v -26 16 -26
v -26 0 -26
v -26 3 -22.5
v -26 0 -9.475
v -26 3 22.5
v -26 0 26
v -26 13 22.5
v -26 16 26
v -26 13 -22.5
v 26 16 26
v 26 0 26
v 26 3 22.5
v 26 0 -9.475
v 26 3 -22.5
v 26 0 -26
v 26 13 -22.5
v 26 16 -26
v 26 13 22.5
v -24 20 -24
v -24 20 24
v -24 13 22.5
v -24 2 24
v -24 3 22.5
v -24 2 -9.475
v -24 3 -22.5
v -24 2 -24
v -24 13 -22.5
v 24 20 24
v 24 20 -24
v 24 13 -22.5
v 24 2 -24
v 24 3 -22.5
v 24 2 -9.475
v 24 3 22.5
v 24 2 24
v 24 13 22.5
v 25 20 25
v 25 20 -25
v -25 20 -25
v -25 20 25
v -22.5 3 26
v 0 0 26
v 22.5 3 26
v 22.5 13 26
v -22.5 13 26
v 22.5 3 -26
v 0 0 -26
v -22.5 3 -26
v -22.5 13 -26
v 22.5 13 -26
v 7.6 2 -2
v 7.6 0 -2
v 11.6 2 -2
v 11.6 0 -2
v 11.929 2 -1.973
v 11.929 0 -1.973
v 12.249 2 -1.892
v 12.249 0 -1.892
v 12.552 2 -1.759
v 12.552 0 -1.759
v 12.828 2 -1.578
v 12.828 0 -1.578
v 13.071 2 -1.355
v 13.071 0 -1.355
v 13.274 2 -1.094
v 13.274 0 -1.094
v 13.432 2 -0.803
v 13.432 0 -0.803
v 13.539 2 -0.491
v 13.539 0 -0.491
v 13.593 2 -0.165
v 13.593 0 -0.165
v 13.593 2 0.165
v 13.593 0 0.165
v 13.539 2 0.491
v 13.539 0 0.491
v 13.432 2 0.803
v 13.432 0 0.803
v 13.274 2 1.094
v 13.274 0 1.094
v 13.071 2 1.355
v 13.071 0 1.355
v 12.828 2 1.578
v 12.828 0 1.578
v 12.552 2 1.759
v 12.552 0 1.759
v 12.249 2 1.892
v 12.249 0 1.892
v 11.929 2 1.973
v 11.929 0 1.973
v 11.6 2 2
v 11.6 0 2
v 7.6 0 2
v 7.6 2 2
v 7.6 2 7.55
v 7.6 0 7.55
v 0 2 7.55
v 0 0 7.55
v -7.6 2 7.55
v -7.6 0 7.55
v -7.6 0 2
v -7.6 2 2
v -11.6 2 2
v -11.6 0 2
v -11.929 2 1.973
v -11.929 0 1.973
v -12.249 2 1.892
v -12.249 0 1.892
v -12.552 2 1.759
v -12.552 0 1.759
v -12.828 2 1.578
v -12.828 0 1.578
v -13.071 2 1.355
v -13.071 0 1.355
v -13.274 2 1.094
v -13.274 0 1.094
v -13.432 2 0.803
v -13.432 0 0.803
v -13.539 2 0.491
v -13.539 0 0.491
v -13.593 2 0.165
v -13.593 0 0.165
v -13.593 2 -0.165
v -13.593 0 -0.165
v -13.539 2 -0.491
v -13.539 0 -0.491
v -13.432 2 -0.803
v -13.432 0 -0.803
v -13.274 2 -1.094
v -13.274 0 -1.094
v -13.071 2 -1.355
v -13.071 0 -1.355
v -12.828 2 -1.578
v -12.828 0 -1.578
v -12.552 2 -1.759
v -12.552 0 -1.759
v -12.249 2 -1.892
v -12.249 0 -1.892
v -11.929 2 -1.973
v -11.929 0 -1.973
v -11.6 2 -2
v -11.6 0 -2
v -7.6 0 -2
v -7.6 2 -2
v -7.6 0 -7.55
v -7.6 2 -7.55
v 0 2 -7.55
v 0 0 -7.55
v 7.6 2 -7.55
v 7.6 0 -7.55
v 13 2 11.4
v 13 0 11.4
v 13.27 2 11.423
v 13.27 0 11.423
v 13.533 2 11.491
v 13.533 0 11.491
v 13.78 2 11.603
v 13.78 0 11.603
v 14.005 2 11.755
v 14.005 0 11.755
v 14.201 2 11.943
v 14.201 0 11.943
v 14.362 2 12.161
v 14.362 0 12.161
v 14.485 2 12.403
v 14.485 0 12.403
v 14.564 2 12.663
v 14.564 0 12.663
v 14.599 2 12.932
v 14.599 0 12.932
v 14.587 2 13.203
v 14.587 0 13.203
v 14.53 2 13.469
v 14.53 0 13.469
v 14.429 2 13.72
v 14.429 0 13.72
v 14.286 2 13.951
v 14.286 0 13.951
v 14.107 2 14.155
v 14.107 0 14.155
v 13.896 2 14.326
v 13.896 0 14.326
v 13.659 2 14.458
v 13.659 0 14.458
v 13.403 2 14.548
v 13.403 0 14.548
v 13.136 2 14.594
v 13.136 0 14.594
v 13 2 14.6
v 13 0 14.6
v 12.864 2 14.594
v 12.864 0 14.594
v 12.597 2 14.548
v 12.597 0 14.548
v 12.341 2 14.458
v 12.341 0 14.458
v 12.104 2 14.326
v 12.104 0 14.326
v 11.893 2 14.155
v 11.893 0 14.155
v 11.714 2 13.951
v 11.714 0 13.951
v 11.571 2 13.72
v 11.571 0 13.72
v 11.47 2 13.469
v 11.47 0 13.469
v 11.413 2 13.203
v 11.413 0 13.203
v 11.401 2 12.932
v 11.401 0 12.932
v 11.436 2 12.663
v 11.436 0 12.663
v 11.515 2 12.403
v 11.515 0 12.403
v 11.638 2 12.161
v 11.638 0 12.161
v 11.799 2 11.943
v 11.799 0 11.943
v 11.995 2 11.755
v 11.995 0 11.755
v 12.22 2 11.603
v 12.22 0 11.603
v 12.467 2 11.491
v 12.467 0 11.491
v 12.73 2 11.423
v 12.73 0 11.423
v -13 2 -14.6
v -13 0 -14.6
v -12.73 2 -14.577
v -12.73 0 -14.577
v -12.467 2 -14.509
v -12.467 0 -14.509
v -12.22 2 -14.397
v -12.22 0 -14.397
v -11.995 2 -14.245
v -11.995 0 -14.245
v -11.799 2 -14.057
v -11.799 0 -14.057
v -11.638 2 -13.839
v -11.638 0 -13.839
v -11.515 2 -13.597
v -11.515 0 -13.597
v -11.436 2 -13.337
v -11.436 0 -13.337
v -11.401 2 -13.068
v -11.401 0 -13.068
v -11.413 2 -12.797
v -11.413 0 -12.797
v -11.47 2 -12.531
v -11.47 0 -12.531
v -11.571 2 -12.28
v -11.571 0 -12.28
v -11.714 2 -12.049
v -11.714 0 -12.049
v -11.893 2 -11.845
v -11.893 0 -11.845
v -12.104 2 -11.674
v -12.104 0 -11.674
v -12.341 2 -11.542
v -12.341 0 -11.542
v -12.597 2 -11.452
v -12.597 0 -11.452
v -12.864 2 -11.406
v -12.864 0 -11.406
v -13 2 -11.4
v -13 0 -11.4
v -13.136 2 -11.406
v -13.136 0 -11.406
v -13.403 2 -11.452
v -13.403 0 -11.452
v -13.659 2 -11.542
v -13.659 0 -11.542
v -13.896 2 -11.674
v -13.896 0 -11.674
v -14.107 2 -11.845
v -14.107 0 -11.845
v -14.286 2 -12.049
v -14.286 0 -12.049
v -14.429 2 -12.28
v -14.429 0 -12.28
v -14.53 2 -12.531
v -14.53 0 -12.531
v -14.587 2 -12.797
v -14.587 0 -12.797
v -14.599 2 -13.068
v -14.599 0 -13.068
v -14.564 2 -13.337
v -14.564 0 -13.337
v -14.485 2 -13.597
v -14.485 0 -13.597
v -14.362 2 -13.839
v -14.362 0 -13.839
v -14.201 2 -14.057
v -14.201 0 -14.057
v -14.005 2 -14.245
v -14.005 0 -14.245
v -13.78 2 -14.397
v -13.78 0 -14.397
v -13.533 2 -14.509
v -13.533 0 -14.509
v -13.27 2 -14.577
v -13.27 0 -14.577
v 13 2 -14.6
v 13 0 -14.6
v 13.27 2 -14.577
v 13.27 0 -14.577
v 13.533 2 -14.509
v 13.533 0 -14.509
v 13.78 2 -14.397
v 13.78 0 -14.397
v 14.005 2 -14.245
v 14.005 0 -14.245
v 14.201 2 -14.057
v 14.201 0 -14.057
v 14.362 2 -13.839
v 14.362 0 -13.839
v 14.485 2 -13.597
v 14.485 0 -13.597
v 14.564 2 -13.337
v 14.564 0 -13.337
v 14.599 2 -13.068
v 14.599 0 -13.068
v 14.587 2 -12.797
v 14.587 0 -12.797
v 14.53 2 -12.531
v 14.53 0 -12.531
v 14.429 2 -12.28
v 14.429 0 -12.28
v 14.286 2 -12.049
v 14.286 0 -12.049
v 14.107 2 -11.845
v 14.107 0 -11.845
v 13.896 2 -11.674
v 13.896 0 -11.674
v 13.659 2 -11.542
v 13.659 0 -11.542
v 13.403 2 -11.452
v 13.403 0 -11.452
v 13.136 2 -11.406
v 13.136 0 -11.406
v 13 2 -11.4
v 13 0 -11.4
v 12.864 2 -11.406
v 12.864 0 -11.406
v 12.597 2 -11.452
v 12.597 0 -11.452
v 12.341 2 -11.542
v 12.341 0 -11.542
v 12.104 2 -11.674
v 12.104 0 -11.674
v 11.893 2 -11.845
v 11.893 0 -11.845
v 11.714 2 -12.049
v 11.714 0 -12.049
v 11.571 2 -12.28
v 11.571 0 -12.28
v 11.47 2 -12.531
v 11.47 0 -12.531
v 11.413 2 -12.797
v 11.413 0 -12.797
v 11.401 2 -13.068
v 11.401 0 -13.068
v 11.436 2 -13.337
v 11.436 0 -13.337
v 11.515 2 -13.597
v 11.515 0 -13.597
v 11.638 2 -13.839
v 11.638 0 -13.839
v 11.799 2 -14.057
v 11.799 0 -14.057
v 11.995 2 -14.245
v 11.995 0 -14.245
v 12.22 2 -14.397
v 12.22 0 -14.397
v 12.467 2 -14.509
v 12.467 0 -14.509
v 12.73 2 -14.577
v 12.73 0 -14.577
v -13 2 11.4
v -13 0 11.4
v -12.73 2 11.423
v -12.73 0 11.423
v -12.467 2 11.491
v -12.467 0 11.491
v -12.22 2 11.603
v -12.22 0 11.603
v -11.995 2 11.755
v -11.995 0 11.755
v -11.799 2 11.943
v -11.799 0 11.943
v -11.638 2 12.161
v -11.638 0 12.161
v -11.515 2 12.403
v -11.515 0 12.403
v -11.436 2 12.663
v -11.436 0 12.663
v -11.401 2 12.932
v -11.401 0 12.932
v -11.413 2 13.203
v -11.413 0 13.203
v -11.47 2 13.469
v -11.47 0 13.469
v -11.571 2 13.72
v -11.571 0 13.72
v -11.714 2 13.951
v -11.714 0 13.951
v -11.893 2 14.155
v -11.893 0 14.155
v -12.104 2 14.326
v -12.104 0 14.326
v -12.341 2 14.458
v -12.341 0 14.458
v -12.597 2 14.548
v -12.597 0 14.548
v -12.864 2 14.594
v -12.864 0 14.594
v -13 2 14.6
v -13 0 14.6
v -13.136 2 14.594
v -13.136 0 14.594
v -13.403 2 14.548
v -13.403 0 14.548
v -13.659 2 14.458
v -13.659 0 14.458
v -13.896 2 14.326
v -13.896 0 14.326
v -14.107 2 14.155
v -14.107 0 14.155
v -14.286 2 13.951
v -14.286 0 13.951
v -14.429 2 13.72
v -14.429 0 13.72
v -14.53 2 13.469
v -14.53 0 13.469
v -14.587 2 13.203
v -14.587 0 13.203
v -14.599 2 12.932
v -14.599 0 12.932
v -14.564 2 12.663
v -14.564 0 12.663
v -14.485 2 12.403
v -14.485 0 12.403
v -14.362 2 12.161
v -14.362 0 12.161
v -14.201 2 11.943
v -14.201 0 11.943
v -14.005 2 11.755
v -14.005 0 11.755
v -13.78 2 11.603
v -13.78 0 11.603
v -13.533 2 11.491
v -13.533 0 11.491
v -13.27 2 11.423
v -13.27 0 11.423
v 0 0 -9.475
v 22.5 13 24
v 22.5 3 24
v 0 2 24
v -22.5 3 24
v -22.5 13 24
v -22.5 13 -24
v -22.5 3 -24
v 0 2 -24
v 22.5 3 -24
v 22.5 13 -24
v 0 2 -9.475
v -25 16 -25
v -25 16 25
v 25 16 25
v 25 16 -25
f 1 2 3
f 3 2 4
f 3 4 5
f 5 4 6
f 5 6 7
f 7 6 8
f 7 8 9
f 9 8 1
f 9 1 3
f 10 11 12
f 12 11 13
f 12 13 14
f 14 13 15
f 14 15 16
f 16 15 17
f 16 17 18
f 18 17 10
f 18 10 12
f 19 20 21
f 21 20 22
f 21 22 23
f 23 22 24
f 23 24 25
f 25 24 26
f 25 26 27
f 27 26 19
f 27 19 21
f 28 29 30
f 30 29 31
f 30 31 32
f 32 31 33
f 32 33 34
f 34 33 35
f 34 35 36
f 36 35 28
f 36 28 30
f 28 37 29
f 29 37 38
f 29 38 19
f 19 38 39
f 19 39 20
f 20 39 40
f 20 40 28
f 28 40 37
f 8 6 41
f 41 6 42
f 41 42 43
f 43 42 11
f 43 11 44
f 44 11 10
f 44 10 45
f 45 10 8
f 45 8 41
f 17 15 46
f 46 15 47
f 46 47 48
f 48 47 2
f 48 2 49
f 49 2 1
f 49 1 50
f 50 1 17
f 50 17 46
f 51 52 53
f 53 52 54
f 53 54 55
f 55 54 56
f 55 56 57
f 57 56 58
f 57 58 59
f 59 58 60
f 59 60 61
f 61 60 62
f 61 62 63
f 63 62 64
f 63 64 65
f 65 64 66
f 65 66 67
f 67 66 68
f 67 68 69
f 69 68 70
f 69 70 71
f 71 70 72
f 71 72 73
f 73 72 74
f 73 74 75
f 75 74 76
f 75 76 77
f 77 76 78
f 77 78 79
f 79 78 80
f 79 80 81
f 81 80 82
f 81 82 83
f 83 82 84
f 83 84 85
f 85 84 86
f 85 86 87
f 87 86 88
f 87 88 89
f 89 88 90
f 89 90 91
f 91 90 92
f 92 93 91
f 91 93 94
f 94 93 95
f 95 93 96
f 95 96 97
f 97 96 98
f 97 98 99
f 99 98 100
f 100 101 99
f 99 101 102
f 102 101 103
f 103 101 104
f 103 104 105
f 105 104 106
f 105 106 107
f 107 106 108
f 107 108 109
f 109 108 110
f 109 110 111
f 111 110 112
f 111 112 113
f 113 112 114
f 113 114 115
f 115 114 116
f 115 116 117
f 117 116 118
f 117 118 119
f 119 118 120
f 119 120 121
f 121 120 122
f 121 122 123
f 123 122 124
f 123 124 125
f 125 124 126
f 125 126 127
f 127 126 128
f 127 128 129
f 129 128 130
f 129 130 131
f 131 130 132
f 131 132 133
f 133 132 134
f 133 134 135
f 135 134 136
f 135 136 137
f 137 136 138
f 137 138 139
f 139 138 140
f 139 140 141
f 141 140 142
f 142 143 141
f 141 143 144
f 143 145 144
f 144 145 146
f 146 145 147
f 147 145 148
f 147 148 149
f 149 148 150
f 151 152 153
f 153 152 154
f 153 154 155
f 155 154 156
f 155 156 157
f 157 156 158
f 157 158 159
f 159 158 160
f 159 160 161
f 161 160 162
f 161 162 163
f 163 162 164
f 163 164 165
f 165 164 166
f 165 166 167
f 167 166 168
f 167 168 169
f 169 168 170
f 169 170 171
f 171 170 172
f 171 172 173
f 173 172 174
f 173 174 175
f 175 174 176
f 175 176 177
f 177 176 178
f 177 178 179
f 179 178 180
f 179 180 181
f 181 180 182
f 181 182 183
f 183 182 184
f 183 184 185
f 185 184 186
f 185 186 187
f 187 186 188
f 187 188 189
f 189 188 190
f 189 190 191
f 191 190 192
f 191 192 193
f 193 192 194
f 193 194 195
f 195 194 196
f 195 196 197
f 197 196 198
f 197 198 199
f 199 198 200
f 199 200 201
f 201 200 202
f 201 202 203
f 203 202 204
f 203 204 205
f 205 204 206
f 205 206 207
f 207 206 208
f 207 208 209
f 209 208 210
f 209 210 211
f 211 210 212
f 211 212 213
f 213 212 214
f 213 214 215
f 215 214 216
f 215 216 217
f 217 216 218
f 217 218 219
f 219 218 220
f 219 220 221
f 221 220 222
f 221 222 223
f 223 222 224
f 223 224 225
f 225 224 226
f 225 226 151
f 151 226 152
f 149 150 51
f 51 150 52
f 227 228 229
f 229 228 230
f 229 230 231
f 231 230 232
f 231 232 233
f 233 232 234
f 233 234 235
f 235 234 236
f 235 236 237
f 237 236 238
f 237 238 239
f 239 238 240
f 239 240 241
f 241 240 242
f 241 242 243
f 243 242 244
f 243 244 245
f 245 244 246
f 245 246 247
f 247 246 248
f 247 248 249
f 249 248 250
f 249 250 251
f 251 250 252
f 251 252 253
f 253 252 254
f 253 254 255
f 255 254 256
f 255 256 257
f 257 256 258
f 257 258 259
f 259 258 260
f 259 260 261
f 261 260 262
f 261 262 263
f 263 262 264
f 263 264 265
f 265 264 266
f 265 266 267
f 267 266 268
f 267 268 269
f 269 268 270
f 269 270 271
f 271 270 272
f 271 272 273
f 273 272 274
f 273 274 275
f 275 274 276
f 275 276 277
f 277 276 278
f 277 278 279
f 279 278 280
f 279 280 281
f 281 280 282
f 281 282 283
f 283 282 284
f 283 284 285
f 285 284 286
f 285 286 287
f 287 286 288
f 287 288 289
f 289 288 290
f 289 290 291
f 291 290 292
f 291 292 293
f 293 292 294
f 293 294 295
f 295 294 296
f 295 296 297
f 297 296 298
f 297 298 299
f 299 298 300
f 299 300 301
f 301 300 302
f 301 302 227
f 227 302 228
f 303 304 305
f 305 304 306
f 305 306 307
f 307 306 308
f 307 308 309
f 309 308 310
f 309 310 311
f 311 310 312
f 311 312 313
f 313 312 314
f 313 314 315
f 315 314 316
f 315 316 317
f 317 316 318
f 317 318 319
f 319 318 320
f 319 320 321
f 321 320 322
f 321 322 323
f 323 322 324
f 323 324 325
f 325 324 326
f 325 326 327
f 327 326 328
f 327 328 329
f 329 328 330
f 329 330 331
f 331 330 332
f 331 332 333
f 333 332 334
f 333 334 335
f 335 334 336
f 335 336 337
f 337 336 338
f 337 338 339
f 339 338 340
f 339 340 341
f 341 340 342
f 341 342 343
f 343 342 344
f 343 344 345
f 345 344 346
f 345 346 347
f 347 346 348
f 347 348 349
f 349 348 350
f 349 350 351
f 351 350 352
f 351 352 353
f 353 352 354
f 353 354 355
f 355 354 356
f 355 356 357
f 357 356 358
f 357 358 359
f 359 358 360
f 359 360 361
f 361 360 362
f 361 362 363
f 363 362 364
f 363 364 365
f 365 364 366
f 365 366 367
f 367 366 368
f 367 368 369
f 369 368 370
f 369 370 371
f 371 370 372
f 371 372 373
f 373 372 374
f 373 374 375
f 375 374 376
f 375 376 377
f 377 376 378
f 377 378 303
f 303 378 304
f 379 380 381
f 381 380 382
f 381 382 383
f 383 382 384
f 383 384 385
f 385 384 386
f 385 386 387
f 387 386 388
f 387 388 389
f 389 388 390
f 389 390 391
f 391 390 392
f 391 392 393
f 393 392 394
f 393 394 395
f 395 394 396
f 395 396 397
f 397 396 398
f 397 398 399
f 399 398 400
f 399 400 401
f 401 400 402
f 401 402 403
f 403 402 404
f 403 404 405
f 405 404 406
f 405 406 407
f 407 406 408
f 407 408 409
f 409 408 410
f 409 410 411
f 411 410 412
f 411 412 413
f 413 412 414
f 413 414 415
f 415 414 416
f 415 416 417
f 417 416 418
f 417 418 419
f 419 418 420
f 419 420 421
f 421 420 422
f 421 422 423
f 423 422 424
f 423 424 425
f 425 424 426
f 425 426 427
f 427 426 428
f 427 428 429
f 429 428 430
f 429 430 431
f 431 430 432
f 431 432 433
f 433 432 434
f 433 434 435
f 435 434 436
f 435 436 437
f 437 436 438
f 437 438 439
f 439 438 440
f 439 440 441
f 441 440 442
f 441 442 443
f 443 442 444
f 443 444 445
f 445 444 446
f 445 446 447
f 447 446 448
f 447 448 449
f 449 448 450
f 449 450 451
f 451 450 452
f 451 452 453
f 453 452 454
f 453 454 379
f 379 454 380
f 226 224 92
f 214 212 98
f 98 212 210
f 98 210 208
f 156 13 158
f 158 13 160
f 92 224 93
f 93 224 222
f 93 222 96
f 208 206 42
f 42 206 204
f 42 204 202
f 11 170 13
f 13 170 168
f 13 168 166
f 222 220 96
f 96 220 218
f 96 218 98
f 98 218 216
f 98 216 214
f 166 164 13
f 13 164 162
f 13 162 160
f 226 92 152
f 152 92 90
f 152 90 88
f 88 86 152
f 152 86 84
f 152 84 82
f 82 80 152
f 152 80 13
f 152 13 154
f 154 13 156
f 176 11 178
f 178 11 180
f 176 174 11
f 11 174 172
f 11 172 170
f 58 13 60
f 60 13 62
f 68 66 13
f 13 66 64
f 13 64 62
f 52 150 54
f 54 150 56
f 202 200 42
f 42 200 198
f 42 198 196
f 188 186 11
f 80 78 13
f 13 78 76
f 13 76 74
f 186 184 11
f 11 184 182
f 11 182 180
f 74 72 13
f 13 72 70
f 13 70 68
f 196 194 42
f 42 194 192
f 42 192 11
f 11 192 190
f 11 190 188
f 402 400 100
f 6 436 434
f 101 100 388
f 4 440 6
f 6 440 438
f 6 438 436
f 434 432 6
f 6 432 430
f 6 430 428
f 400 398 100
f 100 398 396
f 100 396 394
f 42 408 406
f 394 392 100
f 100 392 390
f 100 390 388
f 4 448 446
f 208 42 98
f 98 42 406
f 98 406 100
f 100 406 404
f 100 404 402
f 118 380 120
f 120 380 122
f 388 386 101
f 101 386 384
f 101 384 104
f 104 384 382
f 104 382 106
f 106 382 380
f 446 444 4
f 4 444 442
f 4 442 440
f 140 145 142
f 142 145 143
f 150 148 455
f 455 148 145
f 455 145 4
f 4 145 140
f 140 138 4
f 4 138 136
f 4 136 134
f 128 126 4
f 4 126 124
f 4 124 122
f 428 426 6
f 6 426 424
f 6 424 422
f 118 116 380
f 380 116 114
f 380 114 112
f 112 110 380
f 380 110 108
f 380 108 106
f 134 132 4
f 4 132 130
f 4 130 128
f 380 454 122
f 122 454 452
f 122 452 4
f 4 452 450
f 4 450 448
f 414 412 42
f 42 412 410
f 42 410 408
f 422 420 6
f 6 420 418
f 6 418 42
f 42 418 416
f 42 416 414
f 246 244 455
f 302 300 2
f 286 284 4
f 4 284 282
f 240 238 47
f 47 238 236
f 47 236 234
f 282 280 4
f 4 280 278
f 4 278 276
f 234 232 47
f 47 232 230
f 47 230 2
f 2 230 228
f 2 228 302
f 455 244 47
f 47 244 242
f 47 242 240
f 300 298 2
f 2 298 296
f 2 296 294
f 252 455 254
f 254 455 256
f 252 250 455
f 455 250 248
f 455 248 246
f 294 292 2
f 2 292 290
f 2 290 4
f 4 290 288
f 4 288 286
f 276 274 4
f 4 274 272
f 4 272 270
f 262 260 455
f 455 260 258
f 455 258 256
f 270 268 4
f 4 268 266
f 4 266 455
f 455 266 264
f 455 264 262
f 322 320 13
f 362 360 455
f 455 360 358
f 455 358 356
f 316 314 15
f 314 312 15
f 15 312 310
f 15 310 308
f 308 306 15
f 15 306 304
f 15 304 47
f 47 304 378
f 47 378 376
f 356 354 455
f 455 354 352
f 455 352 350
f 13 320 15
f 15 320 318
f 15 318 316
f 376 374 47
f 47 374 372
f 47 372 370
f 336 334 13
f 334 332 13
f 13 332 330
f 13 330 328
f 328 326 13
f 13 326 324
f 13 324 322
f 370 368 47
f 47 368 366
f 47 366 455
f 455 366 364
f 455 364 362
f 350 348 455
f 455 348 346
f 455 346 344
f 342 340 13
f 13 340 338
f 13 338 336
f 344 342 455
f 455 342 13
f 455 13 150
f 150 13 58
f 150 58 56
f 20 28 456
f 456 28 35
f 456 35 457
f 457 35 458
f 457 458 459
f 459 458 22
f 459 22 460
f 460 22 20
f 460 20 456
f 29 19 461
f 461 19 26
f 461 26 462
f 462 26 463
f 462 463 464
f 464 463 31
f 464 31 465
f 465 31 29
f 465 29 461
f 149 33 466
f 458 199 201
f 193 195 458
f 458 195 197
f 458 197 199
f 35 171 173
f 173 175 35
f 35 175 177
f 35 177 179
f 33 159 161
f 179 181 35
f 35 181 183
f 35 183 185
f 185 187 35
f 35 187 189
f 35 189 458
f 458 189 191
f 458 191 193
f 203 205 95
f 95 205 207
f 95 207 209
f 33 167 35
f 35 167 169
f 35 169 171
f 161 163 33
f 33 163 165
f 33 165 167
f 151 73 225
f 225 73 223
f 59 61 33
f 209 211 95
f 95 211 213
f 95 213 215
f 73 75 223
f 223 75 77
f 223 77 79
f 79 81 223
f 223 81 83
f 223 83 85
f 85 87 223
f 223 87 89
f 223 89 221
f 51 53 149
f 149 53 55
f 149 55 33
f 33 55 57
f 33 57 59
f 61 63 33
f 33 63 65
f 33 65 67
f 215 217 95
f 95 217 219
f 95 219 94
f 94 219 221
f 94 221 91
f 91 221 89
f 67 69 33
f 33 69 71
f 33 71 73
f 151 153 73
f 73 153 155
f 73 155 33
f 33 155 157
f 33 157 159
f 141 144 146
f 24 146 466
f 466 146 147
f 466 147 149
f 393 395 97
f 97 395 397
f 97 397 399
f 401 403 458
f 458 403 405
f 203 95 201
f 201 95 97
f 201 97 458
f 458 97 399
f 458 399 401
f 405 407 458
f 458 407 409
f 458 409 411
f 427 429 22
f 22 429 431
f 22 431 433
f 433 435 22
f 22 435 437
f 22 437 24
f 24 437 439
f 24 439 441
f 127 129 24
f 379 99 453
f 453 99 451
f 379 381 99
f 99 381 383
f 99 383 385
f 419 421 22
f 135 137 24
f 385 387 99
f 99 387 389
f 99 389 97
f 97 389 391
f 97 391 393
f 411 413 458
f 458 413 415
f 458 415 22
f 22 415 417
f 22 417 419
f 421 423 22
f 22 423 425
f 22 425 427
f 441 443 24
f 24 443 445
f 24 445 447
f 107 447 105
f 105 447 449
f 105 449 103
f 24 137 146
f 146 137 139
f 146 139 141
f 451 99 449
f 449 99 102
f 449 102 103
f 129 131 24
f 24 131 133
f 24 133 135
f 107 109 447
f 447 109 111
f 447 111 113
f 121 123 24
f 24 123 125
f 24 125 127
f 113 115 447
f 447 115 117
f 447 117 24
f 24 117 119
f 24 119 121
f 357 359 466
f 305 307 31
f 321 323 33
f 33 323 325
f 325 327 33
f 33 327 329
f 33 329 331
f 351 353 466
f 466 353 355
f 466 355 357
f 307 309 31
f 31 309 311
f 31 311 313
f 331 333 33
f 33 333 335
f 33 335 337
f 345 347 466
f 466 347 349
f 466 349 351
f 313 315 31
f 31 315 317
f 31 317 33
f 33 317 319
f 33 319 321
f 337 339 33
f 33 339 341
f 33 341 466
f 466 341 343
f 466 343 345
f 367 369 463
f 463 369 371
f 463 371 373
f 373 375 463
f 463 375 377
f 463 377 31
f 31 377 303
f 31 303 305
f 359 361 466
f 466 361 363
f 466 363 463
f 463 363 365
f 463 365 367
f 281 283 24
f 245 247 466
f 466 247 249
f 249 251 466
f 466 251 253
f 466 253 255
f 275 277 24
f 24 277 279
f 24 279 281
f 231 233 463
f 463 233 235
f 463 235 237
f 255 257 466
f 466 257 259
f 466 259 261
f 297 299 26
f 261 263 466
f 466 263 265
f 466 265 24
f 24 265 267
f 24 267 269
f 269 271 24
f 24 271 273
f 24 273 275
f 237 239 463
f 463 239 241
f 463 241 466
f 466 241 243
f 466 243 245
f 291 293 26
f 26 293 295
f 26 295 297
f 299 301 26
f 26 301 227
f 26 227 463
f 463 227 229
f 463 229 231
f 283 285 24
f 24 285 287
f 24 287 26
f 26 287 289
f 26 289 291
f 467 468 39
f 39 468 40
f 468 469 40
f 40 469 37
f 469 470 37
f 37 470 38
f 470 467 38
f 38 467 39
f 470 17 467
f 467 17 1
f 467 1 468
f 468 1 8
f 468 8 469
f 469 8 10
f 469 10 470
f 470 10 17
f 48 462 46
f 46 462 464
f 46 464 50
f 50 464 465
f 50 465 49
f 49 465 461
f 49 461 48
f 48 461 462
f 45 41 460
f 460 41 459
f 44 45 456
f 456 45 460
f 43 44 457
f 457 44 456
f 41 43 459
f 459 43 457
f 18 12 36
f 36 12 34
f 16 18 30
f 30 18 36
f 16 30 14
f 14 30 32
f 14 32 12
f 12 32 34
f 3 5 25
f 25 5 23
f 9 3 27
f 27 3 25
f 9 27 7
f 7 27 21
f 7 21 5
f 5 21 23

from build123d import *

# Parameters (mm, degrees)
SKETCH_1_W          = 52
SKETCH_1_H          = 52.00000000000001
SKETCH_1_W_2        = 32
SKETCH_1_H_2        = 32
SKETCH_1_R          = 1.6000000000000019
EXTRUDE_2_DEPTH     = 20
SHELL_6_T           = -2
SKETCH_3_W          = 52
SKETCH_3_H          = 52.00000000000001
SKETCH_3_W_2        = 50
SKETCH_3_H_2        = 50.00000000000001
CUT_EXTRUDE_5_DEPTH = 4
CUT_EXTRUDE_6_DEPTH = 62.4817045957576
CUT_EXTRUDE_7_DEPTH = 62.48170459575759


with BuildPart() as part:
    # 草图1 → 凸台-拉伸2 (new body)
    # profile 1 of 2: a face of its own
    with BuildSketch(Plane(origin=(0, 0, 0), x_dir=(1, 0, 0), z_dir=(0, 1, 0))):
        Rectangle(SKETCH_1_W, SKETCH_1_H)
        Rectangle(SKETCH_1_W_2, SKETCH_1_H_2, mode=Mode.SUBTRACT)
    # profile 2 of 2: a face of its own
    with BuildSketch(Plane(origin=(0, 0, 0), x_dir=(1, 0, 0), z_dir=(0, 1, 0))):
        Rectangle(SKETCH_1_W_2, SKETCH_1_H_2)
        with Locations(Location((-13.000000000000002, -13.000000000000002, 0), (0, 0, 270))):
            Circle(SKETCH_1_R, mode=Mode.SUBTRACT)
        with Locations(Location((13.000000000000009, -13.000000000000002, 0), (0, 0, 270))):
            Circle(SKETCH_1_R, mode=Mode.SUBTRACT)
        with Locations(Location((-13.000000000000002, 13.000000000000002, 0), (0, 0, 270))):
            Circle(SKETCH_1_R, mode=Mode.SUBTRACT)
        with BuildLine():
            Line((-7.599999999999996, -7.550000000000001), (-7.599999999999996, -1.9999999999999991))
            Line((-7.599999999999996, -1.9999999999999991), (-11.599999999999998, -1.9999999999999996))
            ThreePointArc((-11.599999999999998, -1.9999999999999996), (-13.599999999999998, 2.4e-16), (-11.599999999999998, 1.9999999999999996))
            Line((-11.599999999999998, 1.9999999999999996), (-7.599999999999996, 1.9999999999999991))
            Line((-7.599999999999996, 2), (-7.599999999999996, 7.549999999999999))
            Line((-7.599999999999996, 7.549999999999999), (7.600000000000003, 7.549999999999999))
            Line((7.600000000000004, 7.549999999999999), (7.600000000000004, 2))
            Line((7.600000000000002, 1.9999999999999991), (11.600000000000005, 1.9999999999999996))
            ThreePointArc((11.600000000000005, 1.9999999999999996), (13.0142135623731, 1.4142135623730947), (13.600000000000005, 0))
            ThreePointArc((13.600000000000005, -4.9e-16), (13.014213562373099, -1.4142135623730951), (11.600000000000005, -1.9999999999999996))
            Line((11.600000000000005, -1.9999999999999996), (7.600000000000002, -1.9999999999999991))
            Line((7.600000000000004, -1.9999999999999991), (7.600000000000004, -7.550000000000001))
            Line((7.600000000000003, -7.550000000000001), (-7.599999999999996, -7.550000000000001))
        make_face(mode=Mode.SUBTRACT)
        with Locations(Location((13.000000000000009, 13.000000000000002, 0), (0, 0, 270))):
            Circle(SKETCH_1_R, mode=Mode.SUBTRACT)
    extrude(amount=EXTRUDE_2_DEPTH)

    # 抽壳6
    shell_6_openings = [part.faces().sort_by_distance(p)[0] for p in [
        (-25.264608948, 20, 0),
        (-13, 10, 11.4),
        (13, 10, 11.4),
        (7.6, 10, -4.775),
        (0, 10, -7.55),
        (-7.6, 10, -4.775),
        (-9.6, 10, -2),
        (-13.6, 10, 0),
        (-9.6, 10, 2),
        (-7.6, 10, 4.775),
        (0, 10, 7.55),
        (7.6, 10, 4.775),
        (9.6, 10, 2),
        (13.6, 10, 0),
        (9.6, 10, -2),
        (-13, 10, -14.6),
        (13, 10, -14.6),
    ]]
    offset(amount=SHELL_6_T, openings=shell_6_openings, kind=Kind.INTERSECTION)

    # 草图3 → 切除-拉伸5 (cut)
    with BuildSketch(Plane(origin=(0, 20, 0), x_dir=(1, 0, 0), z_dir=(0, 1, 0))):
        Rectangle(SKETCH_3_W, SKETCH_3_H)
        Rectangle(SKETCH_3_W_2, SKETCH_3_H_2, mode=Mode.SUBTRACT)
    extrude(amount=-CUT_EXTRUDE_5_DEPTH, mode=Mode.SUBTRACT)

    # 草图4 → 切除-拉伸6 (cut, through all)
    with BuildSketch(Plane.XY.offset(26.000000000000004)):
        Polygon((22.499999999999993, 3.0000000000000044), (-22.500000000000007, 2.999999999999999), (-22.500000000000007, 13), (22.499999999999993, 13.000000000000007), align=None)
    extrude(amount=-CUT_EXTRUDE_6_DEPTH, mode=Mode.SUBTRACT)

    # 草图5 → 切除-拉伸7 (cut, through all)
    with BuildSketch(Plane.ZY.offset(25.999999999999996)):
        Polygon((0, 8), (0, 13), (-22.500000000000007, 12.999999999999996), (-22.500000000000007, 8), align=None)
        Polygon((22.499999999999993, 13.000000000000004), (0, 13), (0, 8), (22.499999999999996, 8), align=None)
        Polygon((22.499999999999996, 8), (0, 8), (0, 2.9999999999999982), (22.499999999999993, 3.000000000000001), align=None)
        Polygon((0, 2.9999999999999982), (0, 8), (-22.500000000000007, 8), (-22.500000000000007, 2.9999999999999956), align=None)
    extrude(amount=-CUT_EXTRUDE_7_DEPTH, mode=Mode.SUBTRACT)


solid = part.part
